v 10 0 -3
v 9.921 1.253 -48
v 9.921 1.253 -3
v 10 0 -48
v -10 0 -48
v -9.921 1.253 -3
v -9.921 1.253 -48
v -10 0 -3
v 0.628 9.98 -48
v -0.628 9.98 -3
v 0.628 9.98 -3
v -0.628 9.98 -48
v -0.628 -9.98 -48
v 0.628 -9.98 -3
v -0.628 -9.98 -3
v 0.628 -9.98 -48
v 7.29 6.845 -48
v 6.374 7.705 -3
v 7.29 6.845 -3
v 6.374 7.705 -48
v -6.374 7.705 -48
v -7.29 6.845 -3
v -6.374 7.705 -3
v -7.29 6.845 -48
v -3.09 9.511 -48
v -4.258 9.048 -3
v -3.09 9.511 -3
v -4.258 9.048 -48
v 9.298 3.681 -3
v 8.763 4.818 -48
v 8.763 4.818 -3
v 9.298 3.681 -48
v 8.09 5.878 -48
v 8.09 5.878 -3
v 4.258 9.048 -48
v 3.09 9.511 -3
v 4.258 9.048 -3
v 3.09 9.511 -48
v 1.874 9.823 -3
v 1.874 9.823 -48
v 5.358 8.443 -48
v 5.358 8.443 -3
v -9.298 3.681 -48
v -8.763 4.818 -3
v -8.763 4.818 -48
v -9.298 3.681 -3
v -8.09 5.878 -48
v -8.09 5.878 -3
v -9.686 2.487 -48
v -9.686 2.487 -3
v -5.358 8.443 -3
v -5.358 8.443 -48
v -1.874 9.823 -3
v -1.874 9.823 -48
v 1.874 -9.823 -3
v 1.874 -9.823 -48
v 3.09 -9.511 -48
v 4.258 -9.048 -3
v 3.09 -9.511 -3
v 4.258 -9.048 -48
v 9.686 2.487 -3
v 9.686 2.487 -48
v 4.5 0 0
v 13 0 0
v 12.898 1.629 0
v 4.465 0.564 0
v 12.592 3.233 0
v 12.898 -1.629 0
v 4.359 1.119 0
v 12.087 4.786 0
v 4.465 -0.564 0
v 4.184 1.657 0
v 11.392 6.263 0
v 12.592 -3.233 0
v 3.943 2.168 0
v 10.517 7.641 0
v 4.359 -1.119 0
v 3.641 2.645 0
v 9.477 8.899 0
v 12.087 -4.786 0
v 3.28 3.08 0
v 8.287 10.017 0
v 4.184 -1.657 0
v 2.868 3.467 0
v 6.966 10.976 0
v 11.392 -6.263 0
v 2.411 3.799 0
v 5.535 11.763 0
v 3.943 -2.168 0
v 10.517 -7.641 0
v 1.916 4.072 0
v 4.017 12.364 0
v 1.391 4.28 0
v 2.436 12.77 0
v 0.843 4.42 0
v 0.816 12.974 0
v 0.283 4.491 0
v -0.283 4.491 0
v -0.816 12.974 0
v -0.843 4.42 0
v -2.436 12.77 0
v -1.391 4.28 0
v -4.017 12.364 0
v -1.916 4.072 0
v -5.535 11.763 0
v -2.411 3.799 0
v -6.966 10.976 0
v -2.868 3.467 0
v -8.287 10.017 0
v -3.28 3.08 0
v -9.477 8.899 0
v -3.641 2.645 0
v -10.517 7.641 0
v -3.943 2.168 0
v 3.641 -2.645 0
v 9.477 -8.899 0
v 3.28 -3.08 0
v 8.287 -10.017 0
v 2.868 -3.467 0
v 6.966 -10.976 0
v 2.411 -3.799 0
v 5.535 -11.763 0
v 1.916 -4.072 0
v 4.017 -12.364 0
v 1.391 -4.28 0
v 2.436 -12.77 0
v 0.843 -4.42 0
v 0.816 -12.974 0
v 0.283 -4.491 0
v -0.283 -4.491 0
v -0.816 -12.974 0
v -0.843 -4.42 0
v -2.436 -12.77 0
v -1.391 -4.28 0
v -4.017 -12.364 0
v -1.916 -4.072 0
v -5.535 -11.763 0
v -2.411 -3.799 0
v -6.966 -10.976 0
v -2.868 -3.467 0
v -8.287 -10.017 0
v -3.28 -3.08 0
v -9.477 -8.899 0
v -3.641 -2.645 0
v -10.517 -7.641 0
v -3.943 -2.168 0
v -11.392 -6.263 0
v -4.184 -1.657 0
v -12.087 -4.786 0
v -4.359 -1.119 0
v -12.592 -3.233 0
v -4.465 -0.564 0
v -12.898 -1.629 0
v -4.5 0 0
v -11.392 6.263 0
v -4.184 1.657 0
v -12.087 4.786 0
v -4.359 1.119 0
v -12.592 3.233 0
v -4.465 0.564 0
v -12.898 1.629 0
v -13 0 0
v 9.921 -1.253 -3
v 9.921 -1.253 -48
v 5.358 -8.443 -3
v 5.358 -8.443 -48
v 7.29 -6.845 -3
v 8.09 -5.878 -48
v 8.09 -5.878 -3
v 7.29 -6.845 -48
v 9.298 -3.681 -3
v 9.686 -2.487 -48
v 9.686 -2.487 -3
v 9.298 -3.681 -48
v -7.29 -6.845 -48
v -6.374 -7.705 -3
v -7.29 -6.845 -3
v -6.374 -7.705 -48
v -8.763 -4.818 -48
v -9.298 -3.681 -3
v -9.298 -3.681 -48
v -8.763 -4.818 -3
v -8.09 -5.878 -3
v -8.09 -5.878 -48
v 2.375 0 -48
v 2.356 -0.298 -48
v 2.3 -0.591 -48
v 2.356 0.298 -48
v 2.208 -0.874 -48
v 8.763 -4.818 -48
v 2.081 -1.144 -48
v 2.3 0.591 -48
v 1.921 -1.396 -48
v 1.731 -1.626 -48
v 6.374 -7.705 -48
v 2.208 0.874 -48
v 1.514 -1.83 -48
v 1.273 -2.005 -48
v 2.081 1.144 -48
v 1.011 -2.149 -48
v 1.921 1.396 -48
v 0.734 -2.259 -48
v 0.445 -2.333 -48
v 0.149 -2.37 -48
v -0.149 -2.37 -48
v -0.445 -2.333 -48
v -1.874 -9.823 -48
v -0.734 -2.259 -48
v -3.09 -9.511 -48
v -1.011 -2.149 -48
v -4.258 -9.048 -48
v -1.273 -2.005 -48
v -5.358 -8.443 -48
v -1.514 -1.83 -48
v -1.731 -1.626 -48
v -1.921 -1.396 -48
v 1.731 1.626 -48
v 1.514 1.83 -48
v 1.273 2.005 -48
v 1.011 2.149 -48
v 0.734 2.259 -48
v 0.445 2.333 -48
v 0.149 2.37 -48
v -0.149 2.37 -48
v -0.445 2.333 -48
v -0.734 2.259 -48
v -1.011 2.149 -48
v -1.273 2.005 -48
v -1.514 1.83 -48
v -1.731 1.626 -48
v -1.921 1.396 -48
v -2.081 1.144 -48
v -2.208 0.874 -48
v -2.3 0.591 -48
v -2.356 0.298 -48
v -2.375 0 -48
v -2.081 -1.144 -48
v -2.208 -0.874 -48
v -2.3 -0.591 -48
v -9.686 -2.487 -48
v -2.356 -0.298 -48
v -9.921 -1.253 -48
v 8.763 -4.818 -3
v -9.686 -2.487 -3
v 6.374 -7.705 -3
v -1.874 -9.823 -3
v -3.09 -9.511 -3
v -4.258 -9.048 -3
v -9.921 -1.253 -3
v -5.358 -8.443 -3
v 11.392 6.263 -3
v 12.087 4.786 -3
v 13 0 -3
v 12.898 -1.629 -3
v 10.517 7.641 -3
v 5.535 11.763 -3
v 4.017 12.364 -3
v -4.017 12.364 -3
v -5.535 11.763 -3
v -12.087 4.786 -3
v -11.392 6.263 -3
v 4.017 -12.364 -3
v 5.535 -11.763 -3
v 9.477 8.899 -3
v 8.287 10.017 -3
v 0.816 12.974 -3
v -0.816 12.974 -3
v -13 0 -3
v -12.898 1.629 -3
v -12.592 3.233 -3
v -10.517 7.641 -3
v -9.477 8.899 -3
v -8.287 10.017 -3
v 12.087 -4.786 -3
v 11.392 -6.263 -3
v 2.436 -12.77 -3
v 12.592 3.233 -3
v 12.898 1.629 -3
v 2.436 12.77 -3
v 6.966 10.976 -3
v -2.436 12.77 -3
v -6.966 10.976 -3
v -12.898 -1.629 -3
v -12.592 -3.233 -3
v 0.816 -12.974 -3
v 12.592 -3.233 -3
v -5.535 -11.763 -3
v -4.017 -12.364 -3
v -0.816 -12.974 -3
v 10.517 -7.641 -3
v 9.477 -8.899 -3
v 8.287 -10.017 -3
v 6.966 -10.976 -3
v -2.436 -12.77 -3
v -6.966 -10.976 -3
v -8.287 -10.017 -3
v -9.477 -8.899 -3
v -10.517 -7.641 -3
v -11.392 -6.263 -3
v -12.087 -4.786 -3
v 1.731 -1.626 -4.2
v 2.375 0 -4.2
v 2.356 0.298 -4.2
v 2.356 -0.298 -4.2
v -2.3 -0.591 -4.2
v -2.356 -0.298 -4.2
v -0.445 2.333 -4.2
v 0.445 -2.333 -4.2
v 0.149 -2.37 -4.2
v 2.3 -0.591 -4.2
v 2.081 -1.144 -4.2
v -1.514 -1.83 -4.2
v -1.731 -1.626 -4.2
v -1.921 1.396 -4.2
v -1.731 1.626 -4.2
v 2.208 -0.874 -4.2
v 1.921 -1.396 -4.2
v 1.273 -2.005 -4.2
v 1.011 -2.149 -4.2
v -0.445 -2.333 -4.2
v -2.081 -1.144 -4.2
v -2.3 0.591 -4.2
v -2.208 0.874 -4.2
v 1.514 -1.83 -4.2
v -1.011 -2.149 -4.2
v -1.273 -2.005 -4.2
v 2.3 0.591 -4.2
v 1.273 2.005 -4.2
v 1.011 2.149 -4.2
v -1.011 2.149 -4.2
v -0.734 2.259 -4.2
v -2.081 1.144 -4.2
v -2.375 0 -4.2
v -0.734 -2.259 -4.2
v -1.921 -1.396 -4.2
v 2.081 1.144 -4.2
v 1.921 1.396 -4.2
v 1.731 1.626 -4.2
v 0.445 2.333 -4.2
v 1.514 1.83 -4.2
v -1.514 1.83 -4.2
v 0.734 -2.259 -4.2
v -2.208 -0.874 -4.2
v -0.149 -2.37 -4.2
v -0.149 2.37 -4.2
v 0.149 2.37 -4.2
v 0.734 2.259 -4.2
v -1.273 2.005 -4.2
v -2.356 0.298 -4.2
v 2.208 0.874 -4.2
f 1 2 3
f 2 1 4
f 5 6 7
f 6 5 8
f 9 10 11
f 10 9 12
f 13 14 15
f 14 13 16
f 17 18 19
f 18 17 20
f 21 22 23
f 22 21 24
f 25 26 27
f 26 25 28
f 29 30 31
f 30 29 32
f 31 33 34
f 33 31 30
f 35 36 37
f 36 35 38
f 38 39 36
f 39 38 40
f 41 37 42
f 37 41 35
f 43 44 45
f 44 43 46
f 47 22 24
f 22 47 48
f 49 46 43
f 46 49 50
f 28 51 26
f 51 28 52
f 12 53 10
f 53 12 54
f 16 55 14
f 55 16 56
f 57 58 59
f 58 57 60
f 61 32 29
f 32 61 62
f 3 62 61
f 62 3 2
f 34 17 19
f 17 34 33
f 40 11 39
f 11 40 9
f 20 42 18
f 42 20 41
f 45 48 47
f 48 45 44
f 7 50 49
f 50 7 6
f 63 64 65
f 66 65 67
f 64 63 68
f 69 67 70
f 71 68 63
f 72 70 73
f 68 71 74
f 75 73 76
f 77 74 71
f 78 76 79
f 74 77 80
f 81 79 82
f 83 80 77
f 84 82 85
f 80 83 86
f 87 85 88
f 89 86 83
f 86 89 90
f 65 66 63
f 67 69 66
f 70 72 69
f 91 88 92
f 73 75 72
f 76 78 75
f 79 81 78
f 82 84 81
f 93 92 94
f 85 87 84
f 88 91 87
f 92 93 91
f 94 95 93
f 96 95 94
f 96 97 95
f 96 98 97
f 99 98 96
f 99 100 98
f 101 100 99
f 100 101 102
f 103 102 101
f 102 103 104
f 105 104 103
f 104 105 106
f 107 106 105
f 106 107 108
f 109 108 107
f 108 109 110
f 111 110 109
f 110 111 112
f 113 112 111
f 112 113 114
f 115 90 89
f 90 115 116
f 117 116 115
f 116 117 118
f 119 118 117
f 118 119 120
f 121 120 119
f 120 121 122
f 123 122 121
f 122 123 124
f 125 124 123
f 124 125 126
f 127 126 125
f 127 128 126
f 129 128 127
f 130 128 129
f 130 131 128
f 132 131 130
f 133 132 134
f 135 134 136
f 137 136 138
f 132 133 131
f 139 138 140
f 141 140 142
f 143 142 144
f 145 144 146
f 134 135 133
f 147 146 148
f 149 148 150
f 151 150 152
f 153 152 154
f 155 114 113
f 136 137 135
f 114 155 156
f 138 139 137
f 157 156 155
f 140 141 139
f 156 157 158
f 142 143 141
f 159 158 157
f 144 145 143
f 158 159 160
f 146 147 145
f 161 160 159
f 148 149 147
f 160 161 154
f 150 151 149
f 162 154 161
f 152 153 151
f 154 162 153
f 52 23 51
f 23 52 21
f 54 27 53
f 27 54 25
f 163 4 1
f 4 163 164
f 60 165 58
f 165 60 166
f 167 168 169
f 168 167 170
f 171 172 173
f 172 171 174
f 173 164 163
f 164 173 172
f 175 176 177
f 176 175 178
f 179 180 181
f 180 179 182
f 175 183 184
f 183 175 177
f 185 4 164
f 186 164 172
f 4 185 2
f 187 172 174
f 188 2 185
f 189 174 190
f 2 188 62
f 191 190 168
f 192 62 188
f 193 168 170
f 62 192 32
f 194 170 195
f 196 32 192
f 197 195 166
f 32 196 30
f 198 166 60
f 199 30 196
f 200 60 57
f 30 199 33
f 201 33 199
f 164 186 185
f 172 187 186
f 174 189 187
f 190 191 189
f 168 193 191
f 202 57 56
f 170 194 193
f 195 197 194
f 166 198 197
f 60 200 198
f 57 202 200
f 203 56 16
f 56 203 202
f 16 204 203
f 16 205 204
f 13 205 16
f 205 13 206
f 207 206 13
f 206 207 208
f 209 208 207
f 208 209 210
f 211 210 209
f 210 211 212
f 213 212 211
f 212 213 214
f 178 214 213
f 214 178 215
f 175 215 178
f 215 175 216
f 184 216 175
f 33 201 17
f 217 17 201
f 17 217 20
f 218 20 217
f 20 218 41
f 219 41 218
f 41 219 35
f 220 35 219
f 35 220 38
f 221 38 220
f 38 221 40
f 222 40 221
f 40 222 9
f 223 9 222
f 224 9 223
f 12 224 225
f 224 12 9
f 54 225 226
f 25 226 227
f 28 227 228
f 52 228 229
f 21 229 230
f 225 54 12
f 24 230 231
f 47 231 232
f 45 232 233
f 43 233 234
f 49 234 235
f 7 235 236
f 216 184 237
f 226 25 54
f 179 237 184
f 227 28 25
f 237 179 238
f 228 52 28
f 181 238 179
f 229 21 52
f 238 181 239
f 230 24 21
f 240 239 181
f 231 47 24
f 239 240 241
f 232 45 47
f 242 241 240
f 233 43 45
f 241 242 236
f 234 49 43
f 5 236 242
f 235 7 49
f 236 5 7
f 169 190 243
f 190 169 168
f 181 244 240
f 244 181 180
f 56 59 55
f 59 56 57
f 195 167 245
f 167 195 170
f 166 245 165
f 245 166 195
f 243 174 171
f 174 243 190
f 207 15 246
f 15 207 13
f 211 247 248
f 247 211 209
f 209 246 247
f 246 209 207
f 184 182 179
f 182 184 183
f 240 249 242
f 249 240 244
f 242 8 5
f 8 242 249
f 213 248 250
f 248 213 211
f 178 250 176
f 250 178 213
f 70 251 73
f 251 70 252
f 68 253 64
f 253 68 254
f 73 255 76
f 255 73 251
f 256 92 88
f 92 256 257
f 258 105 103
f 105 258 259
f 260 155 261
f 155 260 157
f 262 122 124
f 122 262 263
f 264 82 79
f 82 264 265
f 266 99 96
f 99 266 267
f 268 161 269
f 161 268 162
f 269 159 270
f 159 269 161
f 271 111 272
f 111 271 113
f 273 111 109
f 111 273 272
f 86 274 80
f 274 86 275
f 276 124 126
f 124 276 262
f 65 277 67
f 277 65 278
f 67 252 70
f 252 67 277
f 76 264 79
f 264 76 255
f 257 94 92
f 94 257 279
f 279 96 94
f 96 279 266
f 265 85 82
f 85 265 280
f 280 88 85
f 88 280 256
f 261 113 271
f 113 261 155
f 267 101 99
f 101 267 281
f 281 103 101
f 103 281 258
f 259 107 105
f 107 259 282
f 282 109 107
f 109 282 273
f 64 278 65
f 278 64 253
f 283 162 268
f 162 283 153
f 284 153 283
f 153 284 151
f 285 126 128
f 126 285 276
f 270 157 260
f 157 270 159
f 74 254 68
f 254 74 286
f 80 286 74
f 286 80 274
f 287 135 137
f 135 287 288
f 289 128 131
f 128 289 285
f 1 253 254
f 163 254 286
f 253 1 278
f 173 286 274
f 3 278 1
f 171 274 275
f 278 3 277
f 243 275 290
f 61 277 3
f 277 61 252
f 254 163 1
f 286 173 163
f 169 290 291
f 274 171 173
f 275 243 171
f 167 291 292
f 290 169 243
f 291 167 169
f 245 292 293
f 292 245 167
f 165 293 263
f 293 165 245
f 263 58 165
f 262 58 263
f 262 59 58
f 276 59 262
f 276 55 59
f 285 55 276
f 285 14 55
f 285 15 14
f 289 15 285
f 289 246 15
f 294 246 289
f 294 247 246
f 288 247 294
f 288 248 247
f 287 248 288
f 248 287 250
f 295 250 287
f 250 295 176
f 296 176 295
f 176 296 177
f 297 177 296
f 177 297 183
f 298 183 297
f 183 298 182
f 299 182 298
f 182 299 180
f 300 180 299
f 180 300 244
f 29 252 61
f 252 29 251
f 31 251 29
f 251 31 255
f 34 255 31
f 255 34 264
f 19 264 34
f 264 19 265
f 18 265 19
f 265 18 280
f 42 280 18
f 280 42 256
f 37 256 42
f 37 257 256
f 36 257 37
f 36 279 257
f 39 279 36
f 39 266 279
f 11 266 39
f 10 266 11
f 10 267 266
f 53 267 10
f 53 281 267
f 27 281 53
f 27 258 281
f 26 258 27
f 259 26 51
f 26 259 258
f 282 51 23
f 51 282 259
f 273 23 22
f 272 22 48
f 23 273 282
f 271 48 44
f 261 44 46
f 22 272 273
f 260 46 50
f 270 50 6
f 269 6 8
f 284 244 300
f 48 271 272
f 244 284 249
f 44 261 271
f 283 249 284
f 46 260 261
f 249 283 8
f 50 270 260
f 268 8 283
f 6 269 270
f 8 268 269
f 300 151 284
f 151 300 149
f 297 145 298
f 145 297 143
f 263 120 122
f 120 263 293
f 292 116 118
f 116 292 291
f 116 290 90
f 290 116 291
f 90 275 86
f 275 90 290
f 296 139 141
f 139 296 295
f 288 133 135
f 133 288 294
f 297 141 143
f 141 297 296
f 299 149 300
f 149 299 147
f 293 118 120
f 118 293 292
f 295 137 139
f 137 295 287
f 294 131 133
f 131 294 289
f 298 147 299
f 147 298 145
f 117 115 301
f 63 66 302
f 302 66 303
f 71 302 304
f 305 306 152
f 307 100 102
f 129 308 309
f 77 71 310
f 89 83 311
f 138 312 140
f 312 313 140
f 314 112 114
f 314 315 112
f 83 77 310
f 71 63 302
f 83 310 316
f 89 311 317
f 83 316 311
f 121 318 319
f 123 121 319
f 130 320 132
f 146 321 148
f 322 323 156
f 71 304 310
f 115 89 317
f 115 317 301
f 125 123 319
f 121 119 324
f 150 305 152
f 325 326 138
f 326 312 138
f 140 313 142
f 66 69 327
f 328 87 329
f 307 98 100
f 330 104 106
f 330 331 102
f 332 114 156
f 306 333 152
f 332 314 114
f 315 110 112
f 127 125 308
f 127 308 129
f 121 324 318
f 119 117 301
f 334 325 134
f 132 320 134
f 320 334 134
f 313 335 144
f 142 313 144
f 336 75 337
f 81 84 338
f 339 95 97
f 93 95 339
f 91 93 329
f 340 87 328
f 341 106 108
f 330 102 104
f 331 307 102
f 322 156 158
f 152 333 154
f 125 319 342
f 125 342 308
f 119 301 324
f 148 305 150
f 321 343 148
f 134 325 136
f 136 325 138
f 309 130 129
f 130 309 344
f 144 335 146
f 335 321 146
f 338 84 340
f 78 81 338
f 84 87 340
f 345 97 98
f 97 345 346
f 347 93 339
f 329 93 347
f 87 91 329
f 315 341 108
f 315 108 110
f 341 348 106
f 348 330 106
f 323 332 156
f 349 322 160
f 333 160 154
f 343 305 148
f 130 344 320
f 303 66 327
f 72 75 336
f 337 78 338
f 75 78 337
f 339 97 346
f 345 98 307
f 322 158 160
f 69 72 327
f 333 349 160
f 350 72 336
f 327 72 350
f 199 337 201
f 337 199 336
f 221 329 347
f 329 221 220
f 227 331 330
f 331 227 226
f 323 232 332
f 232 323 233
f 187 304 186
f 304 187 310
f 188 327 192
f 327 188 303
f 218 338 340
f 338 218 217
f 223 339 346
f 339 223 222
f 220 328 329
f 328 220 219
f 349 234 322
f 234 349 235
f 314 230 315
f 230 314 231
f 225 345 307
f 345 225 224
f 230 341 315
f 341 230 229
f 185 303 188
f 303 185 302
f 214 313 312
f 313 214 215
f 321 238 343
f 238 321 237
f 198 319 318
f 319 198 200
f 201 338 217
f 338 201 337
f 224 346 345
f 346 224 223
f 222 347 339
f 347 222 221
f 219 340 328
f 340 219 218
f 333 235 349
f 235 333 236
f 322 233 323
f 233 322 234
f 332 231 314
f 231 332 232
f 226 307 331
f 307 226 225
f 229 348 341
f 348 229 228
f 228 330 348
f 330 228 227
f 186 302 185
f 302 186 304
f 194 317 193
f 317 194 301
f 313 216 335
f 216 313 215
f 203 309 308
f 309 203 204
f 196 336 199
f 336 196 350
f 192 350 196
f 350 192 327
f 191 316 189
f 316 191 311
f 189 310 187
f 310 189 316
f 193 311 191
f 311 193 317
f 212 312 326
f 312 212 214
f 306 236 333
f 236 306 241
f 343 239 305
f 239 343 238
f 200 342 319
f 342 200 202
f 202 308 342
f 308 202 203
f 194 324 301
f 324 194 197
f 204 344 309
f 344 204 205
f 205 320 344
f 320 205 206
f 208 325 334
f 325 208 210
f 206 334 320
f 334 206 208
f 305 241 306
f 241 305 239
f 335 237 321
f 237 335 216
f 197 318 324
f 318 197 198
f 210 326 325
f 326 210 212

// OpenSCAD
$fn = 50;


difference() {
	union() {
		translate(v = [0, 0, -48.0000000000]) {
			cylinder(h = 48, r = 10.0000000000);
		}
		translate(v = [0, 0, -3.0000000000]) {
			cylinder(h = 3, r = 13.0000000000);
		}
	}
	union() {
		translate(v = [0, 0, 0]) {
			rotate(a = [0, 0, 0]) {
				difference() {
					union() {
						#translate(v = [0, 0, -48.0000000000]) {
							cylinder(h = 48, r = 2.2500000000);
						}
						#translate(v = [0, 0, -4.2000000000]) {
							cylinder(h = 4.2000000000, r1 = 2.3750000000, r2 = 4.5000000000);
						}
						#translate(v = [0, 0, -48.0000000000]) {
							cylinder(h = 48, r = 2.3750000000);
						}
						#translate(v = [0, 0, -48.0000000000]) {
							cylinder(h = 48, r = 2.2500000000);
						}
					}
					union();
				}
			}
		}
	}
}
